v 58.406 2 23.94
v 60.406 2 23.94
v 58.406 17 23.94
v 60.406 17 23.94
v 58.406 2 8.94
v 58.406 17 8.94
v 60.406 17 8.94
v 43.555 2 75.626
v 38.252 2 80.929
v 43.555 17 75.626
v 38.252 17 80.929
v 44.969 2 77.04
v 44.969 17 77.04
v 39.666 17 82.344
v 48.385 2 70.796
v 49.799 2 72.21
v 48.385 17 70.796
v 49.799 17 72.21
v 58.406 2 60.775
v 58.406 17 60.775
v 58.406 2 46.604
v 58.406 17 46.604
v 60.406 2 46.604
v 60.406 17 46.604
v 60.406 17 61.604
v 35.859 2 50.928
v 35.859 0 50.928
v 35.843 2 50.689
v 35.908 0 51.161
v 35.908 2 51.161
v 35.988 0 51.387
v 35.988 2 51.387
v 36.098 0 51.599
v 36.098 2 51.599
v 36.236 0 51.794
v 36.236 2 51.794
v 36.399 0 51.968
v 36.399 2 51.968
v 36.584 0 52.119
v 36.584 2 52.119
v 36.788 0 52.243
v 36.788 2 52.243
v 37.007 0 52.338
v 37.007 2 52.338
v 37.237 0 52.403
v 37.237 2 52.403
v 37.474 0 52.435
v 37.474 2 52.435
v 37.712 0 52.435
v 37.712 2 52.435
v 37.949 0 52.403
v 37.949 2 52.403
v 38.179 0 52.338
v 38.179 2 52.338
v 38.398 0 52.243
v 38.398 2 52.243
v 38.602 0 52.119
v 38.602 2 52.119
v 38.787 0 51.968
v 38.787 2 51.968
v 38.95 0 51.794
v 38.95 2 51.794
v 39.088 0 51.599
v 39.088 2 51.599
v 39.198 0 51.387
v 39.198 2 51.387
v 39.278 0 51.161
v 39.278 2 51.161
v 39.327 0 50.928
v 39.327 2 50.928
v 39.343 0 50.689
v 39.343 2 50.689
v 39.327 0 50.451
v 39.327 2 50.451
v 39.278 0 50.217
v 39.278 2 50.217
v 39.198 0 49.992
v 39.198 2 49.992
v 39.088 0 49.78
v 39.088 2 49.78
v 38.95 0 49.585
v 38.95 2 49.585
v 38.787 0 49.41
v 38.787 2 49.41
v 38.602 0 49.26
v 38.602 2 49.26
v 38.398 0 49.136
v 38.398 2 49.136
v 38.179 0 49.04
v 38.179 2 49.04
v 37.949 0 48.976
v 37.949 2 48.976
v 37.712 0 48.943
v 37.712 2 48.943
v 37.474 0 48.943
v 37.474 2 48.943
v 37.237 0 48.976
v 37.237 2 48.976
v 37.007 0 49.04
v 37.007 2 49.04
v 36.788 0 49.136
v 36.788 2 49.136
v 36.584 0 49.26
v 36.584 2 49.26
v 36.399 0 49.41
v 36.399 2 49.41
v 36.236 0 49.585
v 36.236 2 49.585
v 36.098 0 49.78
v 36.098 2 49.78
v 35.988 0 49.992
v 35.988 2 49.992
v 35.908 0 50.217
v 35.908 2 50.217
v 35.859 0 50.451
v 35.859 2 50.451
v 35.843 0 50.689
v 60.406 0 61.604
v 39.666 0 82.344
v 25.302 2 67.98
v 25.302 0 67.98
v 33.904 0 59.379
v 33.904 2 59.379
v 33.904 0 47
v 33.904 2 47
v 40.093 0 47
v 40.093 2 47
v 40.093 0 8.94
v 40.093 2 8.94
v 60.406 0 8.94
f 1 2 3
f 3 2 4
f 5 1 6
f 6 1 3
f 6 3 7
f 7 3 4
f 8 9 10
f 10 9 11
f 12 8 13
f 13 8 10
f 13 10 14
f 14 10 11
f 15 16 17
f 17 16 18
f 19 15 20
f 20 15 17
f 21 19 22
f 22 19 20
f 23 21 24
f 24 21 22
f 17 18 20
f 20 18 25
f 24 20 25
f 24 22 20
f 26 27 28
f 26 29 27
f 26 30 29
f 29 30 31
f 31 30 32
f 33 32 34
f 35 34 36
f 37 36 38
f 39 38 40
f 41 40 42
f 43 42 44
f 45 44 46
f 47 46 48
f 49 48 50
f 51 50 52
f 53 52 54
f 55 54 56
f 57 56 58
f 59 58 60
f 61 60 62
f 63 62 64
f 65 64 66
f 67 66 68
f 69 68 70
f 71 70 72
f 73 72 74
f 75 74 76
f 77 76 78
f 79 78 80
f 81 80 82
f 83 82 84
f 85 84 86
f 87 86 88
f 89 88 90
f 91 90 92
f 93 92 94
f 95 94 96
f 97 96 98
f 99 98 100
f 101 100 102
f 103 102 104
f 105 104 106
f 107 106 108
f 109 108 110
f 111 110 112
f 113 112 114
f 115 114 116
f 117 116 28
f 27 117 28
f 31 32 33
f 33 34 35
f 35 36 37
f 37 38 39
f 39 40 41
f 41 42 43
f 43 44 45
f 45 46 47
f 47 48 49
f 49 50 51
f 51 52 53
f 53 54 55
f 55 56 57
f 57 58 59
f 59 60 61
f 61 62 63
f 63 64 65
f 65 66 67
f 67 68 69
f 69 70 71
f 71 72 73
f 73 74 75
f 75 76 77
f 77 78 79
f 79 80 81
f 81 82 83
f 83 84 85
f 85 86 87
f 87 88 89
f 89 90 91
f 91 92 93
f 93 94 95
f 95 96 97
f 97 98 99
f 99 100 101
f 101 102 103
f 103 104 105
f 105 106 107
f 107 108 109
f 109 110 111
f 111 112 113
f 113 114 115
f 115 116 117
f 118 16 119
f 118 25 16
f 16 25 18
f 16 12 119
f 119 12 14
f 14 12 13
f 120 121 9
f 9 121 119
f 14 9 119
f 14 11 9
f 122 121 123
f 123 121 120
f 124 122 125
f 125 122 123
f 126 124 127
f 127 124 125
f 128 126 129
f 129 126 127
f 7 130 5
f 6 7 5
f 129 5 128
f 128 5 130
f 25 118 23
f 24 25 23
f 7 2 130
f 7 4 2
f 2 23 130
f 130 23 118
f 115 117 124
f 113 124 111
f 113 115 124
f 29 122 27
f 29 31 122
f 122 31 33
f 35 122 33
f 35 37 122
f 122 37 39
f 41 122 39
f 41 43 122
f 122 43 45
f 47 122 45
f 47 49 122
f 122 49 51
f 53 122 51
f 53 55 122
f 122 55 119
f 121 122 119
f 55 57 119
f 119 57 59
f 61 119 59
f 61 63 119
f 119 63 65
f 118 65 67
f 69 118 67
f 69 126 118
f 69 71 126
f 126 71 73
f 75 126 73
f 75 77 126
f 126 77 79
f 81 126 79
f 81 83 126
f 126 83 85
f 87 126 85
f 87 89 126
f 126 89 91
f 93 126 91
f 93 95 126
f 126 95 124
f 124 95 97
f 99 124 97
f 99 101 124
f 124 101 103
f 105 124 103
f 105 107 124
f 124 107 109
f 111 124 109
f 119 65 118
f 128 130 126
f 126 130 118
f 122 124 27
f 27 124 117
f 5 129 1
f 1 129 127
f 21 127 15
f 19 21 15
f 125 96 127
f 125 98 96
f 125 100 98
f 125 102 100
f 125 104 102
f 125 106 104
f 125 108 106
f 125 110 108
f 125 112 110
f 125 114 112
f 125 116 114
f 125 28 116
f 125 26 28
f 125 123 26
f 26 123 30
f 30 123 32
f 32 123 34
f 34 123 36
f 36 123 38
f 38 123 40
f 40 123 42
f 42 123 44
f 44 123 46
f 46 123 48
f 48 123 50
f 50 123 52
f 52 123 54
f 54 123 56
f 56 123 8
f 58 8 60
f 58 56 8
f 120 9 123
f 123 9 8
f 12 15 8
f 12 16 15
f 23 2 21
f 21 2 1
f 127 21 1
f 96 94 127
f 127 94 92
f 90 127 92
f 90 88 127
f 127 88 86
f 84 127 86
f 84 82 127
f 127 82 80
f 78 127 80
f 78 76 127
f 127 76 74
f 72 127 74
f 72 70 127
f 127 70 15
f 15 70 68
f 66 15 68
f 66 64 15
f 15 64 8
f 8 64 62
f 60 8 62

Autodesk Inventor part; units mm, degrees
ref_plane "YZ Plane" through (0, 0, 0) normal (1, 0, 0) x (0, 1, 0)
ref_plane "XZ Plane" through (0, 0, 0) normal (0, 1, 0) x (-1, 0, 0)
ref_plane "XY Plane" through (0, 0, 0) normal (0, 0, 1) x (1, 0, 0)
sketch "Sketch1" plane through (0, 0, 0) normal (0, 1, 0) x (-1, 0, 0)
  line L0 (-39.6659, 82.3437) -> (-60.406, 61.6036)
  line L1 (-60.406, 61.6036) -> (-60.406, 8.9397)
  circle A0 centre (-37.593, 50.6893) radius 1.75
  circle A1 centre (-37.593, 50.6893) radius 1.75
  line L2 (-60.406, 8.9397) -> (-40.093, 8.9397)
  line L3 (-40.093, 47) -> (-33.9037, 47)
  line L4 (-33.9037, 47) -> (-33.9037, 59.379)
  line L5 (-25.3025, 67.9802) -> (-33.9037, 59.379)
  line L6 (-40.093, 47) -> (-40.093, 8.9397)
  line L7 (-39.6659, 82.3437) -> (-25.3025, 67.9802)
extrude "Extrusion1" add sketch "Sketch1" along normal blind 2
sketch "Sketch2" plane through (0, 2, 0) normal (0, 1, 0) x (1, 0, 0)
  line L0 (39.6659, -82.3437) -> (60.406, -61.6036) projected
  line L1 (60.406, -61.6036) -> (60.406, -8.9397) projected
  line L2 (60.406, -61.6036) -> (60.406, -46.6036)
  line L3 (60.406, -46.6036) -> (58.406, -46.6036)
  line L4 (58.406, -46.6036) -> (58.406, -60.7752)
  line L5 (60.406, -61.6036) -> (49.7994, -72.2102)
  line L6 (49.7994, -72.2102) -> (48.3852, -70.796)
  line L7 (48.3852, -70.796) -> (58.406, -60.7752)
  line L8 (60.406, -8.9397) -> (58.406, -8.9397)
  line L9 (58.406, -8.9397) -> (58.406, -23.9397)
  line L10 (58.406, -23.9397) -> (60.406, -23.9397)
  line L11 (60.406, -23.9397) -> (60.406, -8.9397)
  line L12 (39.6659, -82.3437) -> (44.9692, -77.0404)
  line L13 (44.9692, -77.0404) -> (43.555, -75.6262)
  line L14 (43.555, -75.6262) -> (38.2517, -80.9295)
  line L15 (38.2517, -80.9295) -> (39.6659, -82.3437)
  line L16 (39.6659, -82.3437) -> (47.1659, -82.3437) construction
  point P0 (0, 0)
  dimension "d6" = 15
  dimension "d7" = 2
  dimension "d8" = 15
  dimension "d9" = 2
  dimension "d10" = 90
  dimension "d11" = 90
  dimension "d12" = 15
  dimension "d13" = 7.5
  dimension "d14" = 45
  dimension "d15" = 2
extrude "Extrusion2" add sketch "Sketch2" along normal blind 15
properties part number "covfronti2c1"
